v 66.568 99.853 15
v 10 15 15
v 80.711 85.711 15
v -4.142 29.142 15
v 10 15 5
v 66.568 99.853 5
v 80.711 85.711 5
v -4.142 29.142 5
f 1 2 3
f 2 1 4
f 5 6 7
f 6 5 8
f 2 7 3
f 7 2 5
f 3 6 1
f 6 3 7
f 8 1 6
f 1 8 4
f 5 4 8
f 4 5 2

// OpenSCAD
// Define dimensions for the rectangular bar
length = 100;  // Length of the bar
width = 20;    // Width of the bar
height = 10;   // Height of the bar

// Adjust rotation and position to match the original model
translate([10, 15, 5])  // Position the bar in the 3D space
rotate([0, 0, 45])      // Rotate the bar to align with the original model
cube([length, width, height]);
